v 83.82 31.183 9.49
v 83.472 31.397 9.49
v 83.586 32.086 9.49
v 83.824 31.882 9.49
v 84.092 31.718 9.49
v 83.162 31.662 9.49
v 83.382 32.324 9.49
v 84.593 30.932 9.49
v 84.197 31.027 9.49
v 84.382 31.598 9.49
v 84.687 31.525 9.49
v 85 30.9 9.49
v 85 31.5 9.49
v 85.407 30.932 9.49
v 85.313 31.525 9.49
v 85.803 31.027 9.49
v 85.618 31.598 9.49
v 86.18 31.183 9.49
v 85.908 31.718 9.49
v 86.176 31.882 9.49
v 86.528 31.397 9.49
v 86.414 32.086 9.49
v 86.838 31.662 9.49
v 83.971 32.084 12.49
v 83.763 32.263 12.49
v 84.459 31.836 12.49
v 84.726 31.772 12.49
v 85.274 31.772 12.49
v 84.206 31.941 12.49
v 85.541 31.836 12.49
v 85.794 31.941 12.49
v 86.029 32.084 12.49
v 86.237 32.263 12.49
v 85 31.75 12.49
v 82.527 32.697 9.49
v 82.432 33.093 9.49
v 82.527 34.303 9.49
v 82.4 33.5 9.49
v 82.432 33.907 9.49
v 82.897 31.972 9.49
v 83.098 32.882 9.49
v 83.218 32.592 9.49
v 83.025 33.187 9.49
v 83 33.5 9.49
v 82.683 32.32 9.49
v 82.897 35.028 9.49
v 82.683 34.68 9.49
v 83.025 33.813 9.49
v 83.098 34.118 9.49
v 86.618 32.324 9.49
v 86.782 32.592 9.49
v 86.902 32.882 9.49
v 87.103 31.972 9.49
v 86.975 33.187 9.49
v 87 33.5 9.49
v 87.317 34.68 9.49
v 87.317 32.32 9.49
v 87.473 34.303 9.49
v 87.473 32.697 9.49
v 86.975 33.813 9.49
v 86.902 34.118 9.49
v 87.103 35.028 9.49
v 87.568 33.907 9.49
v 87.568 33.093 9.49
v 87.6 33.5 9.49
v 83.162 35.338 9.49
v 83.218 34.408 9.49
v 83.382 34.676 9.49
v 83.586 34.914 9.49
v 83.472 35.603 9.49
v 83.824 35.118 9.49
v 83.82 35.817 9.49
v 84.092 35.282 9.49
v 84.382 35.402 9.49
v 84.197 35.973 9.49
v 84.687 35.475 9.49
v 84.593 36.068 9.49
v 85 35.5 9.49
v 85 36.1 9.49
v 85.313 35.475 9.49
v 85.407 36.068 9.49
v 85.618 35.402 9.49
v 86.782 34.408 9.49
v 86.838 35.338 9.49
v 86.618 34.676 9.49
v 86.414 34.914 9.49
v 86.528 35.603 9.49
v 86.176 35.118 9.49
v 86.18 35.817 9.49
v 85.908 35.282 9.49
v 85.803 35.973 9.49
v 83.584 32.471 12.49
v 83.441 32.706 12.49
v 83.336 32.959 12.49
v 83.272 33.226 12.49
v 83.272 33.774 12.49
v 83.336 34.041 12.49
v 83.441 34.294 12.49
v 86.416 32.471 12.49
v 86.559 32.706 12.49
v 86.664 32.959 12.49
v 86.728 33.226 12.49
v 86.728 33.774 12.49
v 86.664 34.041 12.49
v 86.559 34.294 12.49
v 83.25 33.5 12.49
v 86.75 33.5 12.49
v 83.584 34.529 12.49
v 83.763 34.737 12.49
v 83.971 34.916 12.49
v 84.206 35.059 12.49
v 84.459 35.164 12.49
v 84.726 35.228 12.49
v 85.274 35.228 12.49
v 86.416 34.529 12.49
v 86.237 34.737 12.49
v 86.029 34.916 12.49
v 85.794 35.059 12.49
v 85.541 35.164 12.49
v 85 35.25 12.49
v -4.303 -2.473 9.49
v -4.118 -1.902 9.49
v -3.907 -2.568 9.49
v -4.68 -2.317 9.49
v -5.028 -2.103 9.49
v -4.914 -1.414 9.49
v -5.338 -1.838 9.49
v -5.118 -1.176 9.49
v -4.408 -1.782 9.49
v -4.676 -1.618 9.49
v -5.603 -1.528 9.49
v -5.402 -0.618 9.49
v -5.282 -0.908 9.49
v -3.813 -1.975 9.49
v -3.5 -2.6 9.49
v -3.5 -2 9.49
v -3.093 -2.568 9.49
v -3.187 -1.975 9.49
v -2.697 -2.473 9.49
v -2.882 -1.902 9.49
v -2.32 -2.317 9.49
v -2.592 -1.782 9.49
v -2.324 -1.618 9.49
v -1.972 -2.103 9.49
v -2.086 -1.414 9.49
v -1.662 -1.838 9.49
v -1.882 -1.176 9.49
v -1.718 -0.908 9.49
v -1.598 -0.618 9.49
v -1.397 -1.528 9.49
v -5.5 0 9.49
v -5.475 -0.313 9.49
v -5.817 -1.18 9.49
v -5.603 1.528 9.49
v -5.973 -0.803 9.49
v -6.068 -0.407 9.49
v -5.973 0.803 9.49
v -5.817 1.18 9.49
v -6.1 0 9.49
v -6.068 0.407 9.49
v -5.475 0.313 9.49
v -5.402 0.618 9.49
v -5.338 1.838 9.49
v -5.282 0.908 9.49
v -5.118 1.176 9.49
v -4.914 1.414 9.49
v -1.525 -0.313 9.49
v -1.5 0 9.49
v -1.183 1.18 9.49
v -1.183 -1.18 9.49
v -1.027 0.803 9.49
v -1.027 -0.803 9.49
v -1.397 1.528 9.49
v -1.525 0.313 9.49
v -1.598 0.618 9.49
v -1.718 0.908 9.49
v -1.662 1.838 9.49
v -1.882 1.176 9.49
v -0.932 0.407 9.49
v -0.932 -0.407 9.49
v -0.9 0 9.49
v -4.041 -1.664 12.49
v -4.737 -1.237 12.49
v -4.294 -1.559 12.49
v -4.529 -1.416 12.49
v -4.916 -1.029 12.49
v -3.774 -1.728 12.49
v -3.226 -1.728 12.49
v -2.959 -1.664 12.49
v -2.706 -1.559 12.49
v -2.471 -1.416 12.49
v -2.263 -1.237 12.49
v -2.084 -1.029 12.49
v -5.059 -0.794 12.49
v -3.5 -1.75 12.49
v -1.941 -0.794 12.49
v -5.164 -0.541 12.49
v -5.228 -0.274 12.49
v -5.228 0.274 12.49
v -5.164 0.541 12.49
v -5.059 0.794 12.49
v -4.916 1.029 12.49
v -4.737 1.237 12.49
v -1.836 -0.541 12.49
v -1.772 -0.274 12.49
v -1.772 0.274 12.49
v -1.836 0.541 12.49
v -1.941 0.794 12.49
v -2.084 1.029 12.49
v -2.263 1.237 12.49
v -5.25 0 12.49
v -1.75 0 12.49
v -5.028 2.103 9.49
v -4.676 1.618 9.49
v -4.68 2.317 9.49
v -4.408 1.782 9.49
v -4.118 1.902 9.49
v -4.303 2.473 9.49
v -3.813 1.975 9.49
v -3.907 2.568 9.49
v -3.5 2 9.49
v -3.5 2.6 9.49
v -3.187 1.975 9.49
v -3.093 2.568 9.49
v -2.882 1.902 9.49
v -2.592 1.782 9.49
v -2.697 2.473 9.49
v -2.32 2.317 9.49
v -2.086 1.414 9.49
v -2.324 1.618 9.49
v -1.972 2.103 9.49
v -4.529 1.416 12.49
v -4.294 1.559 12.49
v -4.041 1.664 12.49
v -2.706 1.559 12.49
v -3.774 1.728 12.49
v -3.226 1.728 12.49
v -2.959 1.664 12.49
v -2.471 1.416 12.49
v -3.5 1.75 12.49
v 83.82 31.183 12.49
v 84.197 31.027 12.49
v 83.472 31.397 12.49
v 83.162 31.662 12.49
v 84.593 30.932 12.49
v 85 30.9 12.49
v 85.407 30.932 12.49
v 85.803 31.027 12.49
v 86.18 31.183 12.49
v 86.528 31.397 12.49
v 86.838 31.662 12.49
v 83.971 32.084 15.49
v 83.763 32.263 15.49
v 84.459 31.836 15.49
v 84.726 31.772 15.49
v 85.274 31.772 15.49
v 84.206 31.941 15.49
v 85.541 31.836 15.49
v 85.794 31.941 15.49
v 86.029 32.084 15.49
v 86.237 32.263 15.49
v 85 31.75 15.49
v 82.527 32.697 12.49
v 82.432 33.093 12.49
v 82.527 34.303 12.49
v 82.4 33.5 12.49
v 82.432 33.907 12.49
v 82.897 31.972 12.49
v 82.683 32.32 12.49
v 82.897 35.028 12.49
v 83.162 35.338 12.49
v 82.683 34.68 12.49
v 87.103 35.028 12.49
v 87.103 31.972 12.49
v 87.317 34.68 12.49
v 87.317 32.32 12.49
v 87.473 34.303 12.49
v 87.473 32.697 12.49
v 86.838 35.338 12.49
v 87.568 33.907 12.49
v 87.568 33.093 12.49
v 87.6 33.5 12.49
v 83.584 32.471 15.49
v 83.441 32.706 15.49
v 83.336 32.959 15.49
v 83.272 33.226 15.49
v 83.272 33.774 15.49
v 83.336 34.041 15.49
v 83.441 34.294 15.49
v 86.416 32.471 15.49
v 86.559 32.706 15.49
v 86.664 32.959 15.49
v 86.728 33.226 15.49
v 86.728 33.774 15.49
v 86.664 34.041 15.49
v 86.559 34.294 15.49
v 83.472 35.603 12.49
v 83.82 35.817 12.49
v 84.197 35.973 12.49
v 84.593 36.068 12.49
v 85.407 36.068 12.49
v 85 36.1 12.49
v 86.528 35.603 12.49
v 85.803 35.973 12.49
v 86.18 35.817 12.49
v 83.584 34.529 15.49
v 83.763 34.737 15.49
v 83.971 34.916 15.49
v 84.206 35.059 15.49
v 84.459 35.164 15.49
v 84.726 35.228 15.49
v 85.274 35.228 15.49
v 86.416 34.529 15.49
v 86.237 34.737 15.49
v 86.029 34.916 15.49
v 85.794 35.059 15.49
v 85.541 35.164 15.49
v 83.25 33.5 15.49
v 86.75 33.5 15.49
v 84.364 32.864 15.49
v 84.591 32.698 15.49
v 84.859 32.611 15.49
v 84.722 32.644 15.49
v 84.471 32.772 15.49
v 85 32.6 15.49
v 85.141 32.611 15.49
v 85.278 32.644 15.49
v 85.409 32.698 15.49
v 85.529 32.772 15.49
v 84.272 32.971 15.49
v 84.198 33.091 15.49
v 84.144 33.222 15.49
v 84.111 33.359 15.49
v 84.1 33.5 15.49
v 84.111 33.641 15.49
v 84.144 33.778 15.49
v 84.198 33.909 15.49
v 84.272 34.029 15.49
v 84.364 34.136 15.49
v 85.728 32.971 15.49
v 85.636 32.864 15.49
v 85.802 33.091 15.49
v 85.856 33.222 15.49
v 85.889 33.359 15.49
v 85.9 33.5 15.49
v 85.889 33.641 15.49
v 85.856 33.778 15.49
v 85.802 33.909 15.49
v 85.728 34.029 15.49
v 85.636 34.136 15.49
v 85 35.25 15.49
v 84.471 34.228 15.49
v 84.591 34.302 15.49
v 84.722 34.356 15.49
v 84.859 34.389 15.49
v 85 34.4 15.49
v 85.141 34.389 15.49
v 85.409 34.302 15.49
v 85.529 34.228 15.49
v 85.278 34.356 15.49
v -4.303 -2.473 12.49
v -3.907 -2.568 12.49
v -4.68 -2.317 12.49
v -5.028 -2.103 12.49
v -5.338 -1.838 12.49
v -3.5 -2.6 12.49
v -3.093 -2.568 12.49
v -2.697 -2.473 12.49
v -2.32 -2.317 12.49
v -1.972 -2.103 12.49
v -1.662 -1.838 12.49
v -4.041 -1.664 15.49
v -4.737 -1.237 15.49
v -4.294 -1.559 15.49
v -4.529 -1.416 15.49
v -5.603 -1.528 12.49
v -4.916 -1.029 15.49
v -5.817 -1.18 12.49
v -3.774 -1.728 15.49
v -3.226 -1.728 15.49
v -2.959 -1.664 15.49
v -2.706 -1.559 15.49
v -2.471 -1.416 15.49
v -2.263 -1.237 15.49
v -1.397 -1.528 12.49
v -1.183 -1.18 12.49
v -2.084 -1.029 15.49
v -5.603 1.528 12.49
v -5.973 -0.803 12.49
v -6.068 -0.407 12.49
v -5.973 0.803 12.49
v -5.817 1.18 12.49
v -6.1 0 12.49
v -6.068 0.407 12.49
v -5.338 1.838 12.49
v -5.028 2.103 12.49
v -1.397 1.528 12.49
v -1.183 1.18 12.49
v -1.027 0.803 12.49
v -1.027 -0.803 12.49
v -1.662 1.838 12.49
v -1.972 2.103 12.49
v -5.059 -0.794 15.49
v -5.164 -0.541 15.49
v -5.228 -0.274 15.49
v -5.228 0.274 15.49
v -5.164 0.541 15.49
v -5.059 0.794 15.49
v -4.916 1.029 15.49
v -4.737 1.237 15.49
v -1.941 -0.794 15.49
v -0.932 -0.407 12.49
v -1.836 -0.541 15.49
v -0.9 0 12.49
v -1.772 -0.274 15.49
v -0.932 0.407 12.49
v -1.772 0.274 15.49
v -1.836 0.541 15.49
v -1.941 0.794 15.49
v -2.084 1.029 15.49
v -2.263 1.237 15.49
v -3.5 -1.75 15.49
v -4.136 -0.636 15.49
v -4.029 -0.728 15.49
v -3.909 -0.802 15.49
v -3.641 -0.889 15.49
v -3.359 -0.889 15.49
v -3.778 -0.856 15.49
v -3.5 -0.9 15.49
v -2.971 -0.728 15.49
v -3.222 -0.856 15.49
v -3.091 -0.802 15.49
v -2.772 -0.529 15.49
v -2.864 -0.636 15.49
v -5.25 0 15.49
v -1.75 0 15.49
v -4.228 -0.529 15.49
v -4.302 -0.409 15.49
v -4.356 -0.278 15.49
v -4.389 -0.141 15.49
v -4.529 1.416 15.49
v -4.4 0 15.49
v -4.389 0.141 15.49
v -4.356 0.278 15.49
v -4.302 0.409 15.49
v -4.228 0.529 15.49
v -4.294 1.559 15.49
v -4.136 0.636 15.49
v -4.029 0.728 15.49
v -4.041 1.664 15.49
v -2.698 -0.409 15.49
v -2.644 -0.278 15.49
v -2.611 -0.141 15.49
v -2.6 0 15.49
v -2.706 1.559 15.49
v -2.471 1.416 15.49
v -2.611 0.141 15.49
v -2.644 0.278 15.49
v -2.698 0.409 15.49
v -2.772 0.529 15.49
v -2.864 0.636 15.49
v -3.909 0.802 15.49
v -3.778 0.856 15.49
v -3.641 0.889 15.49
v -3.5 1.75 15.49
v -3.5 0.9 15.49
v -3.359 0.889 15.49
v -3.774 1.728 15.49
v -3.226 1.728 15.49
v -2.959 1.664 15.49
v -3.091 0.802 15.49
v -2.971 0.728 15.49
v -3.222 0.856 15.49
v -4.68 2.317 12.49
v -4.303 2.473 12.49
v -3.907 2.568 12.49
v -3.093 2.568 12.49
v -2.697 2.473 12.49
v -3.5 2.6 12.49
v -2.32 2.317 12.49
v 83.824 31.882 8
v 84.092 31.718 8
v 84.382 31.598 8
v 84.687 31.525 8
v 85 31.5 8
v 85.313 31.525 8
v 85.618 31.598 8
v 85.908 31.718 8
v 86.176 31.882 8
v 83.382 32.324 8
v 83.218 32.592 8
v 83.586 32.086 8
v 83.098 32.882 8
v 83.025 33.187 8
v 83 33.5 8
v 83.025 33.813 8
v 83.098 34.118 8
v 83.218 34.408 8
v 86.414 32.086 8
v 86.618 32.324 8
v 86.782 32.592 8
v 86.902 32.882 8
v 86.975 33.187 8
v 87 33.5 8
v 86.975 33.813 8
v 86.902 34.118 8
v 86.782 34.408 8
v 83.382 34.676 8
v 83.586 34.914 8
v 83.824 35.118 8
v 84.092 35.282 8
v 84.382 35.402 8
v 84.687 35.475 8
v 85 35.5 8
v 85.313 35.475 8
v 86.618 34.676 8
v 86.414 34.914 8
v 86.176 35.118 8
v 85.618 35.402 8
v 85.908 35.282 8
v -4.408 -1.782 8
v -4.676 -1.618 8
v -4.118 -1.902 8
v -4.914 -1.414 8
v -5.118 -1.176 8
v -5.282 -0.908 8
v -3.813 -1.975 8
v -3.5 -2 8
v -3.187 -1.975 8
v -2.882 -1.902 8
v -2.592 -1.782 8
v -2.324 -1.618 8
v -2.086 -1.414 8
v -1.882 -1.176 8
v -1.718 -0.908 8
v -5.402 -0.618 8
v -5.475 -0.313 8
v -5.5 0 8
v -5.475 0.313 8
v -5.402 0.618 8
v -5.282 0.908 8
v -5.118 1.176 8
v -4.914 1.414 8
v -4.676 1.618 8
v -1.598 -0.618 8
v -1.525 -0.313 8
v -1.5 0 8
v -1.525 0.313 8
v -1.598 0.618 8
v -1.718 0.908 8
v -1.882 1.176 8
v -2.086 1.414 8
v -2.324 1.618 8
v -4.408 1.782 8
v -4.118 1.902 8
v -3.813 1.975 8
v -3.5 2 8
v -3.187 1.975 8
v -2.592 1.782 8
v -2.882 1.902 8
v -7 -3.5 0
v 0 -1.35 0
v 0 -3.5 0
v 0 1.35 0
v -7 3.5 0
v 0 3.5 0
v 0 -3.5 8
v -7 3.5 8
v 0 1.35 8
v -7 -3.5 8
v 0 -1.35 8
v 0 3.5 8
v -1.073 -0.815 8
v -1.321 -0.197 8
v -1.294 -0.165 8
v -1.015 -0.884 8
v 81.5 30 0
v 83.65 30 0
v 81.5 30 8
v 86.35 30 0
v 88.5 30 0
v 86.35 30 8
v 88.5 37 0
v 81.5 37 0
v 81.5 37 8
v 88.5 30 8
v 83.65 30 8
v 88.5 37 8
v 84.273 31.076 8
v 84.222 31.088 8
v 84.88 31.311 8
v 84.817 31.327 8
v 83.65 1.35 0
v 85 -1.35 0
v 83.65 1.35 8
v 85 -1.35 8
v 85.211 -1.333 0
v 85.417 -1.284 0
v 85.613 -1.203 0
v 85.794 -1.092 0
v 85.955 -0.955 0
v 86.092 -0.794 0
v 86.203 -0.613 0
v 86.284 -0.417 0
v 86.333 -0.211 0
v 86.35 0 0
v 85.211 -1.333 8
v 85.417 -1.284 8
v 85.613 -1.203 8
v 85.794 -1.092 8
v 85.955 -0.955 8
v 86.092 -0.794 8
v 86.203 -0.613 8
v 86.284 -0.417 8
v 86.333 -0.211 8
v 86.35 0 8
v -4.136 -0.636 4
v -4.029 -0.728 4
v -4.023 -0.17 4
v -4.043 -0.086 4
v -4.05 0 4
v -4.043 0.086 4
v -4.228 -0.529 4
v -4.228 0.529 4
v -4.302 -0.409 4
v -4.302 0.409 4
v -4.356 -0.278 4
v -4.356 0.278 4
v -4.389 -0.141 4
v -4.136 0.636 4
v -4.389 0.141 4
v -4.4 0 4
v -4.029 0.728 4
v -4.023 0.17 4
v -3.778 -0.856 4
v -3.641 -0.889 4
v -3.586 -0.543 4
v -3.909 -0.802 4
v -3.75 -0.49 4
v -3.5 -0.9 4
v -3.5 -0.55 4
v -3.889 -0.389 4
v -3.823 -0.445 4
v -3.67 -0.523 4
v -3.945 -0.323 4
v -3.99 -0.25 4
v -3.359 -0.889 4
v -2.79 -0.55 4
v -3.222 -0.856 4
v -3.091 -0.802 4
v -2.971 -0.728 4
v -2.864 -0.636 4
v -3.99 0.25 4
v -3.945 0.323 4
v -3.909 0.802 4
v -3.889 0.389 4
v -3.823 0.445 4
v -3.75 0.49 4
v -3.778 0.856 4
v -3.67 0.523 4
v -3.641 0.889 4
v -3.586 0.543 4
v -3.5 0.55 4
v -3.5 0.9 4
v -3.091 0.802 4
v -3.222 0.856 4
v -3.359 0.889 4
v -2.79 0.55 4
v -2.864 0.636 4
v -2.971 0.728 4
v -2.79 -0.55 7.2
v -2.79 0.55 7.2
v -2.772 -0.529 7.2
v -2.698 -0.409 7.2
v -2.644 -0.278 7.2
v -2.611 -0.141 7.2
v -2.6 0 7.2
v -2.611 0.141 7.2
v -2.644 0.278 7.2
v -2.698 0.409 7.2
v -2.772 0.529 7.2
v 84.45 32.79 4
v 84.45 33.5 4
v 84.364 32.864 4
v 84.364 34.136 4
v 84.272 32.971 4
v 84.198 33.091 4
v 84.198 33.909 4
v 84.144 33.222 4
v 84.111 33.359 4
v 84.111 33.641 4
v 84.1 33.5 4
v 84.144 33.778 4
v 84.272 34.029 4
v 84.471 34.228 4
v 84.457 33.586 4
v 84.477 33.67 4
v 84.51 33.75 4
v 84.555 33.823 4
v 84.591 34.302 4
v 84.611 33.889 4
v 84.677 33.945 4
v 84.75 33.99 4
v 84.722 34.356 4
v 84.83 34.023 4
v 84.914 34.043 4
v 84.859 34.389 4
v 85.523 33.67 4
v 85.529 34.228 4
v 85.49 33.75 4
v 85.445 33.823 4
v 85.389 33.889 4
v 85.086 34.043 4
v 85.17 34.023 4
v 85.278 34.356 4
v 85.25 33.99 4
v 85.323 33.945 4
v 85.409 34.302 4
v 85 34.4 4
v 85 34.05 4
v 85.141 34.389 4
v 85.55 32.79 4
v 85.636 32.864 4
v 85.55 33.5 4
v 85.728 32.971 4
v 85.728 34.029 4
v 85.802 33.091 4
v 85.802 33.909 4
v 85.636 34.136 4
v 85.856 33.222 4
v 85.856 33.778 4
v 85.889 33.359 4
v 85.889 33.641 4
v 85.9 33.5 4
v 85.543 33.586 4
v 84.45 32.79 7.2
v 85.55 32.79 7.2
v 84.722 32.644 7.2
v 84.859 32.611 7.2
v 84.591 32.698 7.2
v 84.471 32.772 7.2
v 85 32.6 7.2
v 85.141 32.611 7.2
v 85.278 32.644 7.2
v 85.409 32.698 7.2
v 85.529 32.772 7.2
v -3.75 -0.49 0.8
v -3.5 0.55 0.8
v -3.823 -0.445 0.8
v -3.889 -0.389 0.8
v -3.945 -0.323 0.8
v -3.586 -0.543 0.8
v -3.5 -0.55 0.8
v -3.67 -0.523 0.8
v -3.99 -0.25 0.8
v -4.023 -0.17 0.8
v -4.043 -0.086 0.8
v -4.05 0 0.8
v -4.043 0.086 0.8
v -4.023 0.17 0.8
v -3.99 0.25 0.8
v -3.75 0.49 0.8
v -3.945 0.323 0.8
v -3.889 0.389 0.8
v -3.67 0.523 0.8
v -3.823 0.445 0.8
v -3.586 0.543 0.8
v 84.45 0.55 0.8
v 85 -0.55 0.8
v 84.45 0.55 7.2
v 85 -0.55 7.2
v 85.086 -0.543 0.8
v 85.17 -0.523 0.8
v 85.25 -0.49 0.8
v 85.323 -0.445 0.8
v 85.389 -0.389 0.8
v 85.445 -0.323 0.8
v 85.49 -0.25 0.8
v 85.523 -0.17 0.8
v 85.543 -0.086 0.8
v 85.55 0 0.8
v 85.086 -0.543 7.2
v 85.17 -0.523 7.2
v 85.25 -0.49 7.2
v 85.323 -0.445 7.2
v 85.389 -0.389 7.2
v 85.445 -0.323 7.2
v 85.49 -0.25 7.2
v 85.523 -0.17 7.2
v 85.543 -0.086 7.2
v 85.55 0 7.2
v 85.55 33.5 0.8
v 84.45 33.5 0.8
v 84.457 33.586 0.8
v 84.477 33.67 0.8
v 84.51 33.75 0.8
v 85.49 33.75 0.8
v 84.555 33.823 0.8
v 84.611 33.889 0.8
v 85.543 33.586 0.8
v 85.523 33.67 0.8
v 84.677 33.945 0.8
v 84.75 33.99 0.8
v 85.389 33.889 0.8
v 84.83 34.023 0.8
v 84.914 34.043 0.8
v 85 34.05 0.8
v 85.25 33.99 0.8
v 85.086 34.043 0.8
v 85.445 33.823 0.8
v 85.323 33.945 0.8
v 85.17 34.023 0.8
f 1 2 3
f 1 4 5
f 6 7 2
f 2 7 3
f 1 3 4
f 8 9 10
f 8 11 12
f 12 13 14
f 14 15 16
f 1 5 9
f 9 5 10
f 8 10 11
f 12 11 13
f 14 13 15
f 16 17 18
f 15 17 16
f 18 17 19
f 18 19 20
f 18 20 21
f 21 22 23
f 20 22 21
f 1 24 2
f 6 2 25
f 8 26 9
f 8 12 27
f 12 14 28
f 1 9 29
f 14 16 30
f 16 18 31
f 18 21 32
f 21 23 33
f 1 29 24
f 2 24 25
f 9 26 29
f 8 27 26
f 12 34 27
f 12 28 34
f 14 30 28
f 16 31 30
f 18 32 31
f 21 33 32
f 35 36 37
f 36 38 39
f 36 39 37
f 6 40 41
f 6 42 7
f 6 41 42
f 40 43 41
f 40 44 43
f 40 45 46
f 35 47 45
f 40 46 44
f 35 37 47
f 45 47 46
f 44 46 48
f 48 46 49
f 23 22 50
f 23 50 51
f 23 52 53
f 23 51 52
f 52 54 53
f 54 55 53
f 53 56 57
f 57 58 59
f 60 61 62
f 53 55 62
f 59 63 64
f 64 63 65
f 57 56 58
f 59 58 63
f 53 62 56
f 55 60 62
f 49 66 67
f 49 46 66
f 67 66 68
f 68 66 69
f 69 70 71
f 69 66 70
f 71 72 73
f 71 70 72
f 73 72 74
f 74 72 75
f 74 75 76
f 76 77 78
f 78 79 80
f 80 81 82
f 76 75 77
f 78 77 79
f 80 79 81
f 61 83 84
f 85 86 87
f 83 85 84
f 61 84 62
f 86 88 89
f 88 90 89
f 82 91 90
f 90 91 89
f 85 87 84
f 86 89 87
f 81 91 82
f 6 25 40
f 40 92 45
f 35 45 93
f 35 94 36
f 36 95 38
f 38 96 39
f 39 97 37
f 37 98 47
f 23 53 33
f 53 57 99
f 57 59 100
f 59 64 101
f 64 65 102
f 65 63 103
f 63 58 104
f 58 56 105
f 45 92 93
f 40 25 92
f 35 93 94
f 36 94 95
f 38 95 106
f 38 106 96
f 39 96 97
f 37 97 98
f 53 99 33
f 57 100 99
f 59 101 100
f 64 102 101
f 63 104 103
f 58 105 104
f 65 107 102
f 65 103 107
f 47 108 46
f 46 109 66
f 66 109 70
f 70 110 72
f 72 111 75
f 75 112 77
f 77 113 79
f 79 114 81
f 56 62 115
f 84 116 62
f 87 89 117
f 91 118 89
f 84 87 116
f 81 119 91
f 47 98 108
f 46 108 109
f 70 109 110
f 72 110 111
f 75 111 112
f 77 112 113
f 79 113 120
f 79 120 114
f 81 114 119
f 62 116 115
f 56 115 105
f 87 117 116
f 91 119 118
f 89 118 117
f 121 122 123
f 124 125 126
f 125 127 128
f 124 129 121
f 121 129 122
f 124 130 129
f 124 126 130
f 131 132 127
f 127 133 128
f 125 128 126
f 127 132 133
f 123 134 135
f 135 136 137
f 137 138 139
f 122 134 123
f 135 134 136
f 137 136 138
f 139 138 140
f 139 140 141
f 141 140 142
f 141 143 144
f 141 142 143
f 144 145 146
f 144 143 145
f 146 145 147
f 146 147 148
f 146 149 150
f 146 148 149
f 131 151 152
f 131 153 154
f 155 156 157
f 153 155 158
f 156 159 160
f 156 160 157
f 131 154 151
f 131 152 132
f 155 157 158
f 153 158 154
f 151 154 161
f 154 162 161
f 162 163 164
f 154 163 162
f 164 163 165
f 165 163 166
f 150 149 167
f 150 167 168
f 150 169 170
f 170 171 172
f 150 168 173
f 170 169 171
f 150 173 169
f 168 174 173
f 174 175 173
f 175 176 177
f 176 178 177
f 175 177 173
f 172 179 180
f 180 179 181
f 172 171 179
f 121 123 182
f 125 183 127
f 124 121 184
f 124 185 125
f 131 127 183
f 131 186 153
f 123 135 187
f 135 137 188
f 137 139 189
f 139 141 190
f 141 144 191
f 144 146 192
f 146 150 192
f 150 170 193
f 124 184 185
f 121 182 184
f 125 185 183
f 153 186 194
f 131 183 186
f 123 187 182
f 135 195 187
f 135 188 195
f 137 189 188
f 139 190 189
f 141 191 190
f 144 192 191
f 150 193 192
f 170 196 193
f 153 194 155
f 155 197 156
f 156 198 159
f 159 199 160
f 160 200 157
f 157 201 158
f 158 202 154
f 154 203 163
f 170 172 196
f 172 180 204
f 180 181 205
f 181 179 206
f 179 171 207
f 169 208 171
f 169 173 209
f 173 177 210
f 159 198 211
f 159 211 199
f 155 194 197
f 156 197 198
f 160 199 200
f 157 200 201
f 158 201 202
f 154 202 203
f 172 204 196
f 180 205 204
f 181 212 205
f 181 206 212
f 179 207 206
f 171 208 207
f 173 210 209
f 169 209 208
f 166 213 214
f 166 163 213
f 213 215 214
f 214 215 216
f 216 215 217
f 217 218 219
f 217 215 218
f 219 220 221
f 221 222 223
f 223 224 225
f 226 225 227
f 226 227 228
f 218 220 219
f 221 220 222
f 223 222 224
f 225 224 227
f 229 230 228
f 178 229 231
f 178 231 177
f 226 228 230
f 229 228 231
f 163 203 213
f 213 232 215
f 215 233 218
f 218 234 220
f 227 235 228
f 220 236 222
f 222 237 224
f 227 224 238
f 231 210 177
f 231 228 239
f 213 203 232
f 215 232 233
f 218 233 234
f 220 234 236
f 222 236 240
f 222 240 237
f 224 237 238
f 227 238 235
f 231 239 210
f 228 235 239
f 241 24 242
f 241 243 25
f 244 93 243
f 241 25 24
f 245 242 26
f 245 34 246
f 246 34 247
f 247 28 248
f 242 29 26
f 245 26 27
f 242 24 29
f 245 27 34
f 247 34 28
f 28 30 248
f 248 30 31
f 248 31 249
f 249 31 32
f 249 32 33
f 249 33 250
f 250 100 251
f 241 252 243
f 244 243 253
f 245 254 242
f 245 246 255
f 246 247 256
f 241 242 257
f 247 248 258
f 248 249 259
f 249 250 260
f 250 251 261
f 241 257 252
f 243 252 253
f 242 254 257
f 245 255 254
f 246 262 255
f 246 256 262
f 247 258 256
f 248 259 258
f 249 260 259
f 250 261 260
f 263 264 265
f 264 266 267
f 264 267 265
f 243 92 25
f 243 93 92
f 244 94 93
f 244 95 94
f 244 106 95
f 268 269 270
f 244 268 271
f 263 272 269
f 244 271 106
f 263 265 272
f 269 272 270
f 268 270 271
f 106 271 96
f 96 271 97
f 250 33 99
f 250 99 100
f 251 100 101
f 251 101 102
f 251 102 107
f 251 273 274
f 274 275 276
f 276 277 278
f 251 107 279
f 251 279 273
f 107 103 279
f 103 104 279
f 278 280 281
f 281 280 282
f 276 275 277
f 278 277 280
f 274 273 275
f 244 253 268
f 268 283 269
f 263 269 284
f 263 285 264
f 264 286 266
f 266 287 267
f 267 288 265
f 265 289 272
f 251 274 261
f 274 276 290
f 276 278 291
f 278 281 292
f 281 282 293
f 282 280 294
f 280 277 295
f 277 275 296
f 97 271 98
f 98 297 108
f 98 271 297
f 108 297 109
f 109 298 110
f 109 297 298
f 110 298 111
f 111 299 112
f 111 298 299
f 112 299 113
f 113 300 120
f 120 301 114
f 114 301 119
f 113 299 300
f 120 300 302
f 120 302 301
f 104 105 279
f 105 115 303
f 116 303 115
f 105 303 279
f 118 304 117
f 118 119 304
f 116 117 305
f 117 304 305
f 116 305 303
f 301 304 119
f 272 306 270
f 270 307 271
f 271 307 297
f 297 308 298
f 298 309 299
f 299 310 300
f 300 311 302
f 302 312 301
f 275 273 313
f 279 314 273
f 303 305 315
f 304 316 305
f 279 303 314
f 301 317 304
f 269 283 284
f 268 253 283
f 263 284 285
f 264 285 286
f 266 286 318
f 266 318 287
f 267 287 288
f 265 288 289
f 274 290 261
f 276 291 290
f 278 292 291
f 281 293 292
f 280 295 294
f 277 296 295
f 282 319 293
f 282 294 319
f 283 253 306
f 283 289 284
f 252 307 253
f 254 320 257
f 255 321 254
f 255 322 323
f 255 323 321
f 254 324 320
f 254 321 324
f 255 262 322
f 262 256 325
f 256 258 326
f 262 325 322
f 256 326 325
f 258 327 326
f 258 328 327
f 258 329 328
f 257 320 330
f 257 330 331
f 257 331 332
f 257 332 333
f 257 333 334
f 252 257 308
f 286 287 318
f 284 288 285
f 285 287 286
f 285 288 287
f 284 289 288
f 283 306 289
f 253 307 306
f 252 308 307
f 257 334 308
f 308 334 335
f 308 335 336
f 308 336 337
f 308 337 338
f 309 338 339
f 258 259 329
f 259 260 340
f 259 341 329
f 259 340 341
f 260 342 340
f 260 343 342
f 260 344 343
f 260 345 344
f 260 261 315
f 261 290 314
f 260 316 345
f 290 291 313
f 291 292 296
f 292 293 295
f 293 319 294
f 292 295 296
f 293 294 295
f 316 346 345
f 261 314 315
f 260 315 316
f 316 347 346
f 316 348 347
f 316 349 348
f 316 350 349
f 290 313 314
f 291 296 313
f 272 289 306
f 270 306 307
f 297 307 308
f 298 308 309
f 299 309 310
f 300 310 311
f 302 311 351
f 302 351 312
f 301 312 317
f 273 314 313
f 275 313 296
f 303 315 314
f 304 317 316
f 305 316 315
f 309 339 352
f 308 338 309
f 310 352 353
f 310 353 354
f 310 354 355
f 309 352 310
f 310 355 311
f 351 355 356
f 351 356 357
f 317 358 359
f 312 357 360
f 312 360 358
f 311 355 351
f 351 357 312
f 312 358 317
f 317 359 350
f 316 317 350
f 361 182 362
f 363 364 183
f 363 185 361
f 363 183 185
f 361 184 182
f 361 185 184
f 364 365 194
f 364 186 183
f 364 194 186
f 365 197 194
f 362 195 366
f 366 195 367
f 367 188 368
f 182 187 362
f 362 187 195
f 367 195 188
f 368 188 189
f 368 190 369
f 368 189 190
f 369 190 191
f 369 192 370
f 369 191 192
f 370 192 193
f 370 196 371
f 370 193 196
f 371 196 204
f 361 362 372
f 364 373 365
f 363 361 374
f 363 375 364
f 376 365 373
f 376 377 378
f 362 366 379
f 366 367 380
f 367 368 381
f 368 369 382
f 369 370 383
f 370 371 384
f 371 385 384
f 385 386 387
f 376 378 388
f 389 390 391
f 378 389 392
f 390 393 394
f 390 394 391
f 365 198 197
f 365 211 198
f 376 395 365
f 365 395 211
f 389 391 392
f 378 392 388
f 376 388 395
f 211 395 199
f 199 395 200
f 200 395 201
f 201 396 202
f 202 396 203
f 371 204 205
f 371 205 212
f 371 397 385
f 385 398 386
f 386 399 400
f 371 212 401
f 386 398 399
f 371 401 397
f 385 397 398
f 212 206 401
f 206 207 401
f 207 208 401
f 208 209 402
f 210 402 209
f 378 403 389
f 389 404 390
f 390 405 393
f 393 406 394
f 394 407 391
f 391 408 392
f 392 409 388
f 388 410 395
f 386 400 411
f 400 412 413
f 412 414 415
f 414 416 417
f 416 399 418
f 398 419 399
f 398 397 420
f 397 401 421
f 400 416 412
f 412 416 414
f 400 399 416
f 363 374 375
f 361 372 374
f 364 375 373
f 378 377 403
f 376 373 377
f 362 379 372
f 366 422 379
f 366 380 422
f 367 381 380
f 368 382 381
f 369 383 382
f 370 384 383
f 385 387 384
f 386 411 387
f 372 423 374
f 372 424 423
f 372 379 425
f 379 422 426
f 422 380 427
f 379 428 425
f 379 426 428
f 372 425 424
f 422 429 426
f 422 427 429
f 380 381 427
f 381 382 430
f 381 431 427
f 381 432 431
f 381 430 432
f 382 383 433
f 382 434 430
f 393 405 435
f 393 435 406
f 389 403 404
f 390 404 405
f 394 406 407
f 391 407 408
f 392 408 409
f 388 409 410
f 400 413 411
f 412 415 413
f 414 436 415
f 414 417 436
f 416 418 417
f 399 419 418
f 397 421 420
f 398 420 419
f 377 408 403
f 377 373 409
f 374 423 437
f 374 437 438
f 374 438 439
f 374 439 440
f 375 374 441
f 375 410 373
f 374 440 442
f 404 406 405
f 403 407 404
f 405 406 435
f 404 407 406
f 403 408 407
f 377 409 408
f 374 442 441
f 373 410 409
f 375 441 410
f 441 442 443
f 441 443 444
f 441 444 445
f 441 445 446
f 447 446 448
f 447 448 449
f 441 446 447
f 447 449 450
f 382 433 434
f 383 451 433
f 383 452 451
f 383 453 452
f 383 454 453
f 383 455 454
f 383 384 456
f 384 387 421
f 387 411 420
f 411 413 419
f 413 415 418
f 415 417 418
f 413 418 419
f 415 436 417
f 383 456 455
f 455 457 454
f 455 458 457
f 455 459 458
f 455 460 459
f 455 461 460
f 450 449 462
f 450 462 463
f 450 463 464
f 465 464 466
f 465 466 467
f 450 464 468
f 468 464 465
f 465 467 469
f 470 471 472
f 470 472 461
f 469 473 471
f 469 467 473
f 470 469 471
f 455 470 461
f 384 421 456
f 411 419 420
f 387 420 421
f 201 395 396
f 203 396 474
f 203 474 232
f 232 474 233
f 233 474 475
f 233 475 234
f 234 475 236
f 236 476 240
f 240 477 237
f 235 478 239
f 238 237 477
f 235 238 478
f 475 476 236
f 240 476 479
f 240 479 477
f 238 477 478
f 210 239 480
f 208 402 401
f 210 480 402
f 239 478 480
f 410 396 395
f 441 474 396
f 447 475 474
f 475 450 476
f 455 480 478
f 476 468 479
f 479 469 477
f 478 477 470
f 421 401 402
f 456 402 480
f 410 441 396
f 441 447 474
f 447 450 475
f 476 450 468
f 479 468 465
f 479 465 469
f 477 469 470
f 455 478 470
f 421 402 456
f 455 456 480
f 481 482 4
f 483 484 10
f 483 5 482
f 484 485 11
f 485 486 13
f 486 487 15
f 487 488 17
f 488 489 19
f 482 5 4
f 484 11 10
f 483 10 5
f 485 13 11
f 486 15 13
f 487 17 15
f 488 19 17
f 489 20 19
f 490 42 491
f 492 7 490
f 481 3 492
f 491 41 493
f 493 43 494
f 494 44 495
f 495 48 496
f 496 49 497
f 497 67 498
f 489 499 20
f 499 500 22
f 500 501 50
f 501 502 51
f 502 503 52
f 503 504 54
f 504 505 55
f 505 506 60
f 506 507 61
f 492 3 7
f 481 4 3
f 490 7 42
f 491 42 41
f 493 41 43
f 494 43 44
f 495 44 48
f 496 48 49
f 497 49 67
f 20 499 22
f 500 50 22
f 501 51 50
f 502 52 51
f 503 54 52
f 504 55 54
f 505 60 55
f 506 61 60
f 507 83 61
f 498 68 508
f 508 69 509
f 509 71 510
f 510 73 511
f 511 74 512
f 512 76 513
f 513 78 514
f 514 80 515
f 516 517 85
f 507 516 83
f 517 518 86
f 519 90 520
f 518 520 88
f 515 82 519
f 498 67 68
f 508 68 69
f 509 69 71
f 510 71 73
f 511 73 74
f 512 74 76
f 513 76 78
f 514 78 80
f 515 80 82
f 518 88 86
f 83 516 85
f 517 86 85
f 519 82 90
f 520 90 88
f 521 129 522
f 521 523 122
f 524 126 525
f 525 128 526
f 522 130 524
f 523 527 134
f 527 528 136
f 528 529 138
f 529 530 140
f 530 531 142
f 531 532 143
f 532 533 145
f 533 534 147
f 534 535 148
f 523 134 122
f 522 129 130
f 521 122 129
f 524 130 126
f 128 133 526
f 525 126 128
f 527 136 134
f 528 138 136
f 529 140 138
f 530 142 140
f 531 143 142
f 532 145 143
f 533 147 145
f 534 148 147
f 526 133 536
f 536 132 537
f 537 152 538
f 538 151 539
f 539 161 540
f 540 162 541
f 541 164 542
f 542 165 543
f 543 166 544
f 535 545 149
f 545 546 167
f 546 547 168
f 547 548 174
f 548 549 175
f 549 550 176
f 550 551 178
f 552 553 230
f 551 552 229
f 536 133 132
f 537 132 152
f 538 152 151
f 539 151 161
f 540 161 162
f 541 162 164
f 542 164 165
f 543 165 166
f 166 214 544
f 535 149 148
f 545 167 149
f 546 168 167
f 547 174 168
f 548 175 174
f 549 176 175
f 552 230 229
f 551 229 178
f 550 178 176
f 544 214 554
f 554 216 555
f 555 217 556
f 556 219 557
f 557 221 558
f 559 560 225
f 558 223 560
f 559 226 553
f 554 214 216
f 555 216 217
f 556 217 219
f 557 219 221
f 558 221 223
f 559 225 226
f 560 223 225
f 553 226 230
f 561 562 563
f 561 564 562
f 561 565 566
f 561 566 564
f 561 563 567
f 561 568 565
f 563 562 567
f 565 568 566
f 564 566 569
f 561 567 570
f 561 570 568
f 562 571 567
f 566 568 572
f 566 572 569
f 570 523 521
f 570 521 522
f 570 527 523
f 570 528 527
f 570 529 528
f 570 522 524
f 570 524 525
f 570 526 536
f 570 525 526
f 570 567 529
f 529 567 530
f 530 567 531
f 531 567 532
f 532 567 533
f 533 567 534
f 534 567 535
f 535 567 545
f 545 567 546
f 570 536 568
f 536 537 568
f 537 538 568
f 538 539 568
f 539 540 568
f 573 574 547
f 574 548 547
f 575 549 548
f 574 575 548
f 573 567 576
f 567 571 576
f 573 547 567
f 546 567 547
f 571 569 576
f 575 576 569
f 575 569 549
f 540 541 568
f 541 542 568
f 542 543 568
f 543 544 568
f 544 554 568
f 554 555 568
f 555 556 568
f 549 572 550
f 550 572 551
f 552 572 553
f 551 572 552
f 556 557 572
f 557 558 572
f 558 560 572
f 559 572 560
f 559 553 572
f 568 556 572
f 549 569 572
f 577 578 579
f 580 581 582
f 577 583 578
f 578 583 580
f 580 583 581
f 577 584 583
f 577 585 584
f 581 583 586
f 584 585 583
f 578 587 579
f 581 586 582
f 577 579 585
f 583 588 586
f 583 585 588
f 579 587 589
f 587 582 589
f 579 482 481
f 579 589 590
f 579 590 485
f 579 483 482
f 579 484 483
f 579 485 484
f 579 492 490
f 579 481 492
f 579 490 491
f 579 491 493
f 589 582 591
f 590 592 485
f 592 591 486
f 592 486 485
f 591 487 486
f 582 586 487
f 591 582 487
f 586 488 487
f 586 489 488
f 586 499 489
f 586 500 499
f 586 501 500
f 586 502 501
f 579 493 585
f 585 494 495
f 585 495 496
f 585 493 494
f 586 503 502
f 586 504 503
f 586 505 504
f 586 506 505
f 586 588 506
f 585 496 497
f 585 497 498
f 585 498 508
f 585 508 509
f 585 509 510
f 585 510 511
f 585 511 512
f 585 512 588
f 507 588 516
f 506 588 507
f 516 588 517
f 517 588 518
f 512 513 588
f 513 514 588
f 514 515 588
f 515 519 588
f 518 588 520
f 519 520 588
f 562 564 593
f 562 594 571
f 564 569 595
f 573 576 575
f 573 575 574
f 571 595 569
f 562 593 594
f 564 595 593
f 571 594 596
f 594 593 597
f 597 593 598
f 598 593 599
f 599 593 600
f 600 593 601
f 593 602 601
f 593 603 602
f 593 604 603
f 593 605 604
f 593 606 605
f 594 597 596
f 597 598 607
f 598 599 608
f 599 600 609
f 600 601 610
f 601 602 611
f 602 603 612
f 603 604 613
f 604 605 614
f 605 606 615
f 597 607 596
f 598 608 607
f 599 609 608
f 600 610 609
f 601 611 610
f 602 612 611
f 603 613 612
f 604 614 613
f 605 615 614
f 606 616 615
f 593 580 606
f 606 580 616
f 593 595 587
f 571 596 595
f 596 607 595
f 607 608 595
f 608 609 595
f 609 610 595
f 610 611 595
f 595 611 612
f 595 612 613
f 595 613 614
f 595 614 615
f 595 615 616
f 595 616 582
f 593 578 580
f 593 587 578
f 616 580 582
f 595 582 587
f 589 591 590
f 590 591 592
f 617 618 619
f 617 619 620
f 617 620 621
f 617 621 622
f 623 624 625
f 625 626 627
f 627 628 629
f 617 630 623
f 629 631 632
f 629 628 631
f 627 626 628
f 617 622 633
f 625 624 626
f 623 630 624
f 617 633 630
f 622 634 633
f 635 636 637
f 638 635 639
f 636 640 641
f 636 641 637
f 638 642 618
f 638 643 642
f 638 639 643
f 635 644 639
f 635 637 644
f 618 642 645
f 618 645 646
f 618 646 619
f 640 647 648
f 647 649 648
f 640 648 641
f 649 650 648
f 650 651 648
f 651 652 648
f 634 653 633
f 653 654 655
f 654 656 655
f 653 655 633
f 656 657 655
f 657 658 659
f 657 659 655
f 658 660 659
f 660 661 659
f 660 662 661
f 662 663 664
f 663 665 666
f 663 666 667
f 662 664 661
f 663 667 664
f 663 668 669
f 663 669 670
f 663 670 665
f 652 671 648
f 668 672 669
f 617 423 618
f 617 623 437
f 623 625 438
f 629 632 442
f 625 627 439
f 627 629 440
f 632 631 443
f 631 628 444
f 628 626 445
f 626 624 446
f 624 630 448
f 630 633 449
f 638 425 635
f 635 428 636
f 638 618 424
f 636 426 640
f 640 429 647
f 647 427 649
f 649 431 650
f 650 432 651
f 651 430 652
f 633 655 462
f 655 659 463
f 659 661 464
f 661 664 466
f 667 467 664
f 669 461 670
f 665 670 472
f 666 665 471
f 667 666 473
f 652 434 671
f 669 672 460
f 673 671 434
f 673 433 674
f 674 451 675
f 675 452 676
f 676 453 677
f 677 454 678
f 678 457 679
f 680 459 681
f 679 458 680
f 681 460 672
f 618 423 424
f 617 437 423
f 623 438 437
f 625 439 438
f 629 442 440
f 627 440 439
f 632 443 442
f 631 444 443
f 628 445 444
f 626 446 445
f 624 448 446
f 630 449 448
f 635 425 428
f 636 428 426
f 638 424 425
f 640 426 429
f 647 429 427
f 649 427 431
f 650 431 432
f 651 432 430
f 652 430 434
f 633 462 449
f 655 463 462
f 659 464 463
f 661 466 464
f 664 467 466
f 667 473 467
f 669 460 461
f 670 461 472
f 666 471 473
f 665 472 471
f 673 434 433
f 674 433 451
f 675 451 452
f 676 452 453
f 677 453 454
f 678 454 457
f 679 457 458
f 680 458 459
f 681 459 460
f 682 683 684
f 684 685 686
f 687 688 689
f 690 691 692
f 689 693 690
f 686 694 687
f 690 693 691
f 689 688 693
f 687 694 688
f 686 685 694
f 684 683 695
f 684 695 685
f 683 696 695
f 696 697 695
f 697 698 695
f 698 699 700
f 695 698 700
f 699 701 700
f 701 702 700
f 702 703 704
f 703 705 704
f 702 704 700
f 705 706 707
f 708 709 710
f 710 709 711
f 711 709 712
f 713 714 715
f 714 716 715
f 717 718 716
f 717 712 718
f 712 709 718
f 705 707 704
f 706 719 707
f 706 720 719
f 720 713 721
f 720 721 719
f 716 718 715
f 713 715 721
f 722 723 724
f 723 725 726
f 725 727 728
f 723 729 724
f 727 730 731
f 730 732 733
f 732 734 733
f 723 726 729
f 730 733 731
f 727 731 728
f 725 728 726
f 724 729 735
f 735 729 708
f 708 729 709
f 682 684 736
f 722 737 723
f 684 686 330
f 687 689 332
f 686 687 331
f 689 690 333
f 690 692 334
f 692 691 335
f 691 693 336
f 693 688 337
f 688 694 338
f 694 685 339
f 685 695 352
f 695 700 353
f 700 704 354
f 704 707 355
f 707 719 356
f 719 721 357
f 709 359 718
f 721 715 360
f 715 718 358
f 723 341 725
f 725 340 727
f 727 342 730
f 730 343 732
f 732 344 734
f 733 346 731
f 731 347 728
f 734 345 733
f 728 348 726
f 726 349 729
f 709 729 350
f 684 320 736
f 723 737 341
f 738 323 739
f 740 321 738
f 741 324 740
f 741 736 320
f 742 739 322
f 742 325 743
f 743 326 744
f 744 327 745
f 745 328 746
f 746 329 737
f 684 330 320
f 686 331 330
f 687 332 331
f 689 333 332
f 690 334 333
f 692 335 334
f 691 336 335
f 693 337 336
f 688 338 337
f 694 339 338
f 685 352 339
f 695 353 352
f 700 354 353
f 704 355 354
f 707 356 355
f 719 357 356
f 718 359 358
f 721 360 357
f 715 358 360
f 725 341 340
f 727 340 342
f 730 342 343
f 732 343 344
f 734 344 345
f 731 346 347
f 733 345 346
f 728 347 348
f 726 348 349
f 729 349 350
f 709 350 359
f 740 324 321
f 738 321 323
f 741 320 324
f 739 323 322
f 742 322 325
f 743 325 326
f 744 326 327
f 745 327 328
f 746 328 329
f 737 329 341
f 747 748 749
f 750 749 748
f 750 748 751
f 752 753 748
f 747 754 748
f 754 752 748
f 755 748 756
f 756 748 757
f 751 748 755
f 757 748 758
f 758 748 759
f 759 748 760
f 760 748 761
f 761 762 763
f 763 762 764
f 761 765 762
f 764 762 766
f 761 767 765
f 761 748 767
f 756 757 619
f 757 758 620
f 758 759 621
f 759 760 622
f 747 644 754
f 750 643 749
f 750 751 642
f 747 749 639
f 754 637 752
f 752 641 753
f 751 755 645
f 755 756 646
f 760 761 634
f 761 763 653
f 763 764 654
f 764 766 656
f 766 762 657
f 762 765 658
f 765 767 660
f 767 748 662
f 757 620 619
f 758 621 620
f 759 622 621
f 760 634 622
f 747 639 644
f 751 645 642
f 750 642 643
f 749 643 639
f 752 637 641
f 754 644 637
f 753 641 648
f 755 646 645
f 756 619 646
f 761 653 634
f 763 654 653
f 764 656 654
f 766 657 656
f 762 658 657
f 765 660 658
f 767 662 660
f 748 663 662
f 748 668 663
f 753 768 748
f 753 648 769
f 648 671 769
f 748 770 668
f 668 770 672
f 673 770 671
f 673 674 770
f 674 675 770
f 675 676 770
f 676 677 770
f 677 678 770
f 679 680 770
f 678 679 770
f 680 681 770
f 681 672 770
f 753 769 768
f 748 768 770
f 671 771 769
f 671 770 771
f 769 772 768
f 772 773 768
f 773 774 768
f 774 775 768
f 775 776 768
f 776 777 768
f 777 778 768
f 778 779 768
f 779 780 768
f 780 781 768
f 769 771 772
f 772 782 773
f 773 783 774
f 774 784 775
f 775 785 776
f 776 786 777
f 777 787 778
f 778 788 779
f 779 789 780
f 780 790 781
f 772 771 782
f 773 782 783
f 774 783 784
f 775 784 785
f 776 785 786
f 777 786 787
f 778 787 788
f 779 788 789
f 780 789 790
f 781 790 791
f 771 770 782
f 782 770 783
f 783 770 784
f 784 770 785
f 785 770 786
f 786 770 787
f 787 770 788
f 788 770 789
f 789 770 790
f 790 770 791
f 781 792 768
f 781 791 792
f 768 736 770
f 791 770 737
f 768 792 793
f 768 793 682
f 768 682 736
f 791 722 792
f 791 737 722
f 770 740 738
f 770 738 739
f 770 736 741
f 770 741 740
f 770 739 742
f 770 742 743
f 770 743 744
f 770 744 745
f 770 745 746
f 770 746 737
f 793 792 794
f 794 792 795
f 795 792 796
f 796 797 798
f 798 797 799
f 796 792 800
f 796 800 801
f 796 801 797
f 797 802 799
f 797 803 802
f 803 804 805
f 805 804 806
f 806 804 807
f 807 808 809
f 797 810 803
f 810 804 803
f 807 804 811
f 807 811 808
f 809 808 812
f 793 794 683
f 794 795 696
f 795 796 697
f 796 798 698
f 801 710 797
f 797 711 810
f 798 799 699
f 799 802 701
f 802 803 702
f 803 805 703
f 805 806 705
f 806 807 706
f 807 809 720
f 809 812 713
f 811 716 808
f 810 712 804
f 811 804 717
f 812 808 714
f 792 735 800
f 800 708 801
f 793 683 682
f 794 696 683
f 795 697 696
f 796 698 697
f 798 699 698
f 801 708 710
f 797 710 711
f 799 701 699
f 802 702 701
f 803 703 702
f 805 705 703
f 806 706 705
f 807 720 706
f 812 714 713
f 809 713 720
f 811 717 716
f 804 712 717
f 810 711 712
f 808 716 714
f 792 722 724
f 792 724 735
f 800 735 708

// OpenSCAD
// Flat window feedthrough for the outdoor pressure tube.
//
// A thin L-shaped blade with an air channel inside. It goes through the gap between
// the window sash and the frame and bends around the L-shaped ledge. The gasket presses on
// the flat blade instead of pinching the soft tube. Each end has a hub with a hose barb:
// the room side goes to the "- UTE" port, the outside end gets a short tube pointing down.
//
// Print it lying on its side as exported: the L lies on the bed, the barbs point up.
// The channel walls are then 2 perimeters, and the channel roof is a short bridge.
// Print in PETG, 100 % infill, and check that it is airtight before you use it.
//
// Lines tagged "MEASURE" depend on your window or tube.

/* [Output] */
part = "feedthrough";       // [feedthrough, preview]
$fn = 40;

/* [Window gap] */
gap = 3.0;                  // MEASURE gap thickness with the window closed (squeeze Blu-Tack, measure it)
leg_in = 85.0;              // MEASURE room-side leg: from the room-side edge of the gap to the ledge corner
leg_out = 30.0;             // MEASURE outside leg: from the ledge corner to the outside edge of the gap
mirror_l = false;           // turn the L the other way (keeps the barbs on the same side)

/* [Blade] */
fit = 0.3;                  // blade is this much thinner than the gap, so the window still latches
width = 8.0;                // blade width along the window edge
skin = 0.8;                 // channel wall (2 perimeters / 4 layers at 0.2 mm)

/* [Tube and barbs] */
// Same barb profile as the SDP810 ports, so any tube that fits the sensor fits here too
barb_d = 5.2;               // MEASURE barb diameter (SDP810: 5.2)
barb_tip = 3.5;             // MEASURE barb tip diameter (SDP810: 3.5)
bore_d = 1.8;               // air hole through the barbs
hub = 7.0;                  // hub size; the hubs sit outside the gap
barb_l = 3.0;               // length of each barb ring
barb_rings = 2;

// ---------------------------------------------------------------- derived
t = gap - fit;              // blade thickness
ch_h = t - 2 * skin;        // channel height (across the blade)
ch_w = width - 2 * skin;    // channel width (along the window edge)
sy = mirror_l ? -1 : 1;
path = [[0, 0], [leg_in, 0], [leg_in, sy * leg_out]];
// hub centres, one hub/2 beyond each end of the blade
hub_a = [-hub / 2, 0];
hub_b = [leg_in, sy * (leg_out + hub / 2)];
channel = concat([hub_a], path, [hub_b]);

echo(str("Blade ", t, " mm thick, channel ", ch_h, " x ", ch_w, " mm"));
assert(ch_h >= 0.6, "gap too small: the channel would be under 0.6 mm (lower skin or fit, or route elsewhere)");
assert(hub >= barb_d + 1.6, "hub too small for the barb");

// Polyline drawn with a round pen of radius r. Inner corners stay sharp.
module stroke(pts, r) {
    for (i = [0 : len(pts) - 2])
        hull() { translate(pts[i]) circle(r); translate(pts[i + 1]) circle(r); }
}

module barb() {
    cylinder(d = barb_tip + 0.5, h = 1.5);
    for (i = [0 : barb_rings - 1])
        translate([0, 0, 1.5 + i * barb_l]) cylinder(d1 = barb_d, d2 = barb_tip, h = barb_l);
}

module feedthrough() {
    difference() {
        union() {
            linear_extrude(width) stroke(path, t / 2);
            for (c = [hub_a, hub_b]) {
                translate([c[0] - hub / 2, c[1] - hub / 2, 0]) cube([hub, hub, width]);
                translate([c[0], c[1], width - 0.01]) barb();
            }
        }
        translate([0, 0, skin]) linear_extrude(ch_w) stroke(channel, ch_h / 2);
        for (c = [hub_a, hub_b])
            translate([c[0], c[1], skin + ch_w / 2]) cylinder(d = bore_d, h = width + barb_rings * barb_l + 3);
    }
}

// Ghost frame ledge (inside the L) and sash (outside the L), for the preview only.
// The room is at x < 0, outdoors is past the end of the outside leg.
module window_ghost() {
    d = 15;
    mirror([0, mirror_l ? 1 : 0, 0]) {
        color("tan", 0.35) translate([0, t / 2, -4]) cube([leg_in - t / 2, leg_out - t / 2, width + 8]);
        color("white", 0.35) {
            translate([0, -t / 2 - d, -4]) cube([leg_in + t / 2 + d, d, width + 8]);
            translate([leg_in + t / 2, -t / 2, -4]) cube([d, leg_out + t / 2, width + 8]);
        }
    }
}

feedthrough();
if (part == "preview") window_ghost();
